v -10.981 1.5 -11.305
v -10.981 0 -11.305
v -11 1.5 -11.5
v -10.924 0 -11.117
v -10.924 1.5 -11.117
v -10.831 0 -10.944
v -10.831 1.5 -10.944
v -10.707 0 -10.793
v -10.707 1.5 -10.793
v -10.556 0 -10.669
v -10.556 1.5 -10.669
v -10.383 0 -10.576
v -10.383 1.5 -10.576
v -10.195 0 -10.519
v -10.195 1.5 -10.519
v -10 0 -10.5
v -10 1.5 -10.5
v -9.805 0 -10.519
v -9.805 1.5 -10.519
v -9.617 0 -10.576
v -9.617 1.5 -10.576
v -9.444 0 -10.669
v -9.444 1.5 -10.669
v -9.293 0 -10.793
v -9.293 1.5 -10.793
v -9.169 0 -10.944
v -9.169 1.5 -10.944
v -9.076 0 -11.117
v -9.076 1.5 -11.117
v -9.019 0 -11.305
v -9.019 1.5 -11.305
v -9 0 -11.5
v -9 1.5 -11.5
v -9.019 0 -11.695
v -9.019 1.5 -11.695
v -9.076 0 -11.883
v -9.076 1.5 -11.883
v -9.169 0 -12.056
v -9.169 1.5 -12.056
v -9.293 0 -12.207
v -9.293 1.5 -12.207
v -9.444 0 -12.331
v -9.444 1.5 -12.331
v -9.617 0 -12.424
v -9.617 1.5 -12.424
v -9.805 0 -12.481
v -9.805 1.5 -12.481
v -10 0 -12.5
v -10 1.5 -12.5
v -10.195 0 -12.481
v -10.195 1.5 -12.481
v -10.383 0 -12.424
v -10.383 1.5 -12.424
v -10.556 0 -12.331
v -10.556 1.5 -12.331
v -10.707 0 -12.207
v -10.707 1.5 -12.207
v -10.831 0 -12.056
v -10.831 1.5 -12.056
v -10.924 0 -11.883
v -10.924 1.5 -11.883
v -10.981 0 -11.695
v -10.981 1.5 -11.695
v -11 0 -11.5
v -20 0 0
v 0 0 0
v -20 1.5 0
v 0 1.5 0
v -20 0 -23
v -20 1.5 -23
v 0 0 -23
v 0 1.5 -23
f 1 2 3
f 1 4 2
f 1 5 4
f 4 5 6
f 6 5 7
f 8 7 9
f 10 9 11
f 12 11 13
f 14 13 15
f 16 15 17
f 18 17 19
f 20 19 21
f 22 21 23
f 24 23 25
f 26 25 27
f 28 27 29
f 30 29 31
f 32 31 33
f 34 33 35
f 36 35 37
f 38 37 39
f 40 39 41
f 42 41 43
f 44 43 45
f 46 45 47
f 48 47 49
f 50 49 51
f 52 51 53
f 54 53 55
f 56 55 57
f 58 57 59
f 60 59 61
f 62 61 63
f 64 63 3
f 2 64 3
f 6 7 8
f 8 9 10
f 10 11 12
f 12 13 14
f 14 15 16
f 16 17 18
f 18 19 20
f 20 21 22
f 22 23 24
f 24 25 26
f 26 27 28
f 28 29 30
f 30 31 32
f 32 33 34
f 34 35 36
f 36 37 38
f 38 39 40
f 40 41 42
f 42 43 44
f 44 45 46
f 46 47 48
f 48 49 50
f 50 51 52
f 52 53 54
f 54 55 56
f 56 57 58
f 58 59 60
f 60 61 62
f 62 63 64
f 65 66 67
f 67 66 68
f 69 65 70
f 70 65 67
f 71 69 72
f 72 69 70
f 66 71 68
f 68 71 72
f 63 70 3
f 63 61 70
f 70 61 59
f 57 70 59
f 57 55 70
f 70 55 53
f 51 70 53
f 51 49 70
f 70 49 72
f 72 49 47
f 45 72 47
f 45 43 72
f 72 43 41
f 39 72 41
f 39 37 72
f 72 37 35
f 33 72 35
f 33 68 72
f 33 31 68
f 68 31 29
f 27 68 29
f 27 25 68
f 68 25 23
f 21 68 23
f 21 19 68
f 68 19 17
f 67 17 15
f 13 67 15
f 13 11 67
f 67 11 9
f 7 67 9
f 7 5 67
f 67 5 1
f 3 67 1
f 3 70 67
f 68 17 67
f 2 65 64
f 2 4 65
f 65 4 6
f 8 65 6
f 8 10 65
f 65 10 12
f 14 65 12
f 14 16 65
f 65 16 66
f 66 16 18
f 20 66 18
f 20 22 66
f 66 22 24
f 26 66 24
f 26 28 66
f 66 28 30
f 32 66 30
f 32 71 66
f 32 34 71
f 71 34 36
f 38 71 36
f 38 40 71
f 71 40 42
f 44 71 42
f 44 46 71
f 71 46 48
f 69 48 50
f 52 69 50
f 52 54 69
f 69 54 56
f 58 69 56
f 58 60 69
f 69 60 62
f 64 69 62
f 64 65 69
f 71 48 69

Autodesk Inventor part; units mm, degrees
ref_plane "YZ Plane" through (0, 0, 0) normal (1, 0, 0) x (0, 1, 0)
ref_plane "XZ Plane" through (0, 0, 0) normal (0, 1, 0) x (-1, 0, 0)
ref_plane "XY Plane" through (0, 0, 0) normal (0, 0, 1) x (1, 0, 0)
sketch "Sketch1" plane through (0, 0, 0) normal (0, 1, 0) x (-1, 0, 0)
  line L0 (0, 0) -> (0, -23)
  line L1 (0, -23) -> (20, -23)
  line L2 (20, -23) -> (20, 0)
  line L3 (16.0214, -11.5) -> (3.8301, -11.5) construction
  circle A0 centre (10, -11.5) radius 1
  line L4 (20, 0) -> (0, 0)
  dimension "d0" = 23
  dimension "d2" = 2
  dimension "d3" = 10
  dimension "d10" = 20
extrude "Extrusion3" add sketch "Sketch1" along normal blind 1.5
properties part number "Distance_test_adaptor_circle_2mm"
